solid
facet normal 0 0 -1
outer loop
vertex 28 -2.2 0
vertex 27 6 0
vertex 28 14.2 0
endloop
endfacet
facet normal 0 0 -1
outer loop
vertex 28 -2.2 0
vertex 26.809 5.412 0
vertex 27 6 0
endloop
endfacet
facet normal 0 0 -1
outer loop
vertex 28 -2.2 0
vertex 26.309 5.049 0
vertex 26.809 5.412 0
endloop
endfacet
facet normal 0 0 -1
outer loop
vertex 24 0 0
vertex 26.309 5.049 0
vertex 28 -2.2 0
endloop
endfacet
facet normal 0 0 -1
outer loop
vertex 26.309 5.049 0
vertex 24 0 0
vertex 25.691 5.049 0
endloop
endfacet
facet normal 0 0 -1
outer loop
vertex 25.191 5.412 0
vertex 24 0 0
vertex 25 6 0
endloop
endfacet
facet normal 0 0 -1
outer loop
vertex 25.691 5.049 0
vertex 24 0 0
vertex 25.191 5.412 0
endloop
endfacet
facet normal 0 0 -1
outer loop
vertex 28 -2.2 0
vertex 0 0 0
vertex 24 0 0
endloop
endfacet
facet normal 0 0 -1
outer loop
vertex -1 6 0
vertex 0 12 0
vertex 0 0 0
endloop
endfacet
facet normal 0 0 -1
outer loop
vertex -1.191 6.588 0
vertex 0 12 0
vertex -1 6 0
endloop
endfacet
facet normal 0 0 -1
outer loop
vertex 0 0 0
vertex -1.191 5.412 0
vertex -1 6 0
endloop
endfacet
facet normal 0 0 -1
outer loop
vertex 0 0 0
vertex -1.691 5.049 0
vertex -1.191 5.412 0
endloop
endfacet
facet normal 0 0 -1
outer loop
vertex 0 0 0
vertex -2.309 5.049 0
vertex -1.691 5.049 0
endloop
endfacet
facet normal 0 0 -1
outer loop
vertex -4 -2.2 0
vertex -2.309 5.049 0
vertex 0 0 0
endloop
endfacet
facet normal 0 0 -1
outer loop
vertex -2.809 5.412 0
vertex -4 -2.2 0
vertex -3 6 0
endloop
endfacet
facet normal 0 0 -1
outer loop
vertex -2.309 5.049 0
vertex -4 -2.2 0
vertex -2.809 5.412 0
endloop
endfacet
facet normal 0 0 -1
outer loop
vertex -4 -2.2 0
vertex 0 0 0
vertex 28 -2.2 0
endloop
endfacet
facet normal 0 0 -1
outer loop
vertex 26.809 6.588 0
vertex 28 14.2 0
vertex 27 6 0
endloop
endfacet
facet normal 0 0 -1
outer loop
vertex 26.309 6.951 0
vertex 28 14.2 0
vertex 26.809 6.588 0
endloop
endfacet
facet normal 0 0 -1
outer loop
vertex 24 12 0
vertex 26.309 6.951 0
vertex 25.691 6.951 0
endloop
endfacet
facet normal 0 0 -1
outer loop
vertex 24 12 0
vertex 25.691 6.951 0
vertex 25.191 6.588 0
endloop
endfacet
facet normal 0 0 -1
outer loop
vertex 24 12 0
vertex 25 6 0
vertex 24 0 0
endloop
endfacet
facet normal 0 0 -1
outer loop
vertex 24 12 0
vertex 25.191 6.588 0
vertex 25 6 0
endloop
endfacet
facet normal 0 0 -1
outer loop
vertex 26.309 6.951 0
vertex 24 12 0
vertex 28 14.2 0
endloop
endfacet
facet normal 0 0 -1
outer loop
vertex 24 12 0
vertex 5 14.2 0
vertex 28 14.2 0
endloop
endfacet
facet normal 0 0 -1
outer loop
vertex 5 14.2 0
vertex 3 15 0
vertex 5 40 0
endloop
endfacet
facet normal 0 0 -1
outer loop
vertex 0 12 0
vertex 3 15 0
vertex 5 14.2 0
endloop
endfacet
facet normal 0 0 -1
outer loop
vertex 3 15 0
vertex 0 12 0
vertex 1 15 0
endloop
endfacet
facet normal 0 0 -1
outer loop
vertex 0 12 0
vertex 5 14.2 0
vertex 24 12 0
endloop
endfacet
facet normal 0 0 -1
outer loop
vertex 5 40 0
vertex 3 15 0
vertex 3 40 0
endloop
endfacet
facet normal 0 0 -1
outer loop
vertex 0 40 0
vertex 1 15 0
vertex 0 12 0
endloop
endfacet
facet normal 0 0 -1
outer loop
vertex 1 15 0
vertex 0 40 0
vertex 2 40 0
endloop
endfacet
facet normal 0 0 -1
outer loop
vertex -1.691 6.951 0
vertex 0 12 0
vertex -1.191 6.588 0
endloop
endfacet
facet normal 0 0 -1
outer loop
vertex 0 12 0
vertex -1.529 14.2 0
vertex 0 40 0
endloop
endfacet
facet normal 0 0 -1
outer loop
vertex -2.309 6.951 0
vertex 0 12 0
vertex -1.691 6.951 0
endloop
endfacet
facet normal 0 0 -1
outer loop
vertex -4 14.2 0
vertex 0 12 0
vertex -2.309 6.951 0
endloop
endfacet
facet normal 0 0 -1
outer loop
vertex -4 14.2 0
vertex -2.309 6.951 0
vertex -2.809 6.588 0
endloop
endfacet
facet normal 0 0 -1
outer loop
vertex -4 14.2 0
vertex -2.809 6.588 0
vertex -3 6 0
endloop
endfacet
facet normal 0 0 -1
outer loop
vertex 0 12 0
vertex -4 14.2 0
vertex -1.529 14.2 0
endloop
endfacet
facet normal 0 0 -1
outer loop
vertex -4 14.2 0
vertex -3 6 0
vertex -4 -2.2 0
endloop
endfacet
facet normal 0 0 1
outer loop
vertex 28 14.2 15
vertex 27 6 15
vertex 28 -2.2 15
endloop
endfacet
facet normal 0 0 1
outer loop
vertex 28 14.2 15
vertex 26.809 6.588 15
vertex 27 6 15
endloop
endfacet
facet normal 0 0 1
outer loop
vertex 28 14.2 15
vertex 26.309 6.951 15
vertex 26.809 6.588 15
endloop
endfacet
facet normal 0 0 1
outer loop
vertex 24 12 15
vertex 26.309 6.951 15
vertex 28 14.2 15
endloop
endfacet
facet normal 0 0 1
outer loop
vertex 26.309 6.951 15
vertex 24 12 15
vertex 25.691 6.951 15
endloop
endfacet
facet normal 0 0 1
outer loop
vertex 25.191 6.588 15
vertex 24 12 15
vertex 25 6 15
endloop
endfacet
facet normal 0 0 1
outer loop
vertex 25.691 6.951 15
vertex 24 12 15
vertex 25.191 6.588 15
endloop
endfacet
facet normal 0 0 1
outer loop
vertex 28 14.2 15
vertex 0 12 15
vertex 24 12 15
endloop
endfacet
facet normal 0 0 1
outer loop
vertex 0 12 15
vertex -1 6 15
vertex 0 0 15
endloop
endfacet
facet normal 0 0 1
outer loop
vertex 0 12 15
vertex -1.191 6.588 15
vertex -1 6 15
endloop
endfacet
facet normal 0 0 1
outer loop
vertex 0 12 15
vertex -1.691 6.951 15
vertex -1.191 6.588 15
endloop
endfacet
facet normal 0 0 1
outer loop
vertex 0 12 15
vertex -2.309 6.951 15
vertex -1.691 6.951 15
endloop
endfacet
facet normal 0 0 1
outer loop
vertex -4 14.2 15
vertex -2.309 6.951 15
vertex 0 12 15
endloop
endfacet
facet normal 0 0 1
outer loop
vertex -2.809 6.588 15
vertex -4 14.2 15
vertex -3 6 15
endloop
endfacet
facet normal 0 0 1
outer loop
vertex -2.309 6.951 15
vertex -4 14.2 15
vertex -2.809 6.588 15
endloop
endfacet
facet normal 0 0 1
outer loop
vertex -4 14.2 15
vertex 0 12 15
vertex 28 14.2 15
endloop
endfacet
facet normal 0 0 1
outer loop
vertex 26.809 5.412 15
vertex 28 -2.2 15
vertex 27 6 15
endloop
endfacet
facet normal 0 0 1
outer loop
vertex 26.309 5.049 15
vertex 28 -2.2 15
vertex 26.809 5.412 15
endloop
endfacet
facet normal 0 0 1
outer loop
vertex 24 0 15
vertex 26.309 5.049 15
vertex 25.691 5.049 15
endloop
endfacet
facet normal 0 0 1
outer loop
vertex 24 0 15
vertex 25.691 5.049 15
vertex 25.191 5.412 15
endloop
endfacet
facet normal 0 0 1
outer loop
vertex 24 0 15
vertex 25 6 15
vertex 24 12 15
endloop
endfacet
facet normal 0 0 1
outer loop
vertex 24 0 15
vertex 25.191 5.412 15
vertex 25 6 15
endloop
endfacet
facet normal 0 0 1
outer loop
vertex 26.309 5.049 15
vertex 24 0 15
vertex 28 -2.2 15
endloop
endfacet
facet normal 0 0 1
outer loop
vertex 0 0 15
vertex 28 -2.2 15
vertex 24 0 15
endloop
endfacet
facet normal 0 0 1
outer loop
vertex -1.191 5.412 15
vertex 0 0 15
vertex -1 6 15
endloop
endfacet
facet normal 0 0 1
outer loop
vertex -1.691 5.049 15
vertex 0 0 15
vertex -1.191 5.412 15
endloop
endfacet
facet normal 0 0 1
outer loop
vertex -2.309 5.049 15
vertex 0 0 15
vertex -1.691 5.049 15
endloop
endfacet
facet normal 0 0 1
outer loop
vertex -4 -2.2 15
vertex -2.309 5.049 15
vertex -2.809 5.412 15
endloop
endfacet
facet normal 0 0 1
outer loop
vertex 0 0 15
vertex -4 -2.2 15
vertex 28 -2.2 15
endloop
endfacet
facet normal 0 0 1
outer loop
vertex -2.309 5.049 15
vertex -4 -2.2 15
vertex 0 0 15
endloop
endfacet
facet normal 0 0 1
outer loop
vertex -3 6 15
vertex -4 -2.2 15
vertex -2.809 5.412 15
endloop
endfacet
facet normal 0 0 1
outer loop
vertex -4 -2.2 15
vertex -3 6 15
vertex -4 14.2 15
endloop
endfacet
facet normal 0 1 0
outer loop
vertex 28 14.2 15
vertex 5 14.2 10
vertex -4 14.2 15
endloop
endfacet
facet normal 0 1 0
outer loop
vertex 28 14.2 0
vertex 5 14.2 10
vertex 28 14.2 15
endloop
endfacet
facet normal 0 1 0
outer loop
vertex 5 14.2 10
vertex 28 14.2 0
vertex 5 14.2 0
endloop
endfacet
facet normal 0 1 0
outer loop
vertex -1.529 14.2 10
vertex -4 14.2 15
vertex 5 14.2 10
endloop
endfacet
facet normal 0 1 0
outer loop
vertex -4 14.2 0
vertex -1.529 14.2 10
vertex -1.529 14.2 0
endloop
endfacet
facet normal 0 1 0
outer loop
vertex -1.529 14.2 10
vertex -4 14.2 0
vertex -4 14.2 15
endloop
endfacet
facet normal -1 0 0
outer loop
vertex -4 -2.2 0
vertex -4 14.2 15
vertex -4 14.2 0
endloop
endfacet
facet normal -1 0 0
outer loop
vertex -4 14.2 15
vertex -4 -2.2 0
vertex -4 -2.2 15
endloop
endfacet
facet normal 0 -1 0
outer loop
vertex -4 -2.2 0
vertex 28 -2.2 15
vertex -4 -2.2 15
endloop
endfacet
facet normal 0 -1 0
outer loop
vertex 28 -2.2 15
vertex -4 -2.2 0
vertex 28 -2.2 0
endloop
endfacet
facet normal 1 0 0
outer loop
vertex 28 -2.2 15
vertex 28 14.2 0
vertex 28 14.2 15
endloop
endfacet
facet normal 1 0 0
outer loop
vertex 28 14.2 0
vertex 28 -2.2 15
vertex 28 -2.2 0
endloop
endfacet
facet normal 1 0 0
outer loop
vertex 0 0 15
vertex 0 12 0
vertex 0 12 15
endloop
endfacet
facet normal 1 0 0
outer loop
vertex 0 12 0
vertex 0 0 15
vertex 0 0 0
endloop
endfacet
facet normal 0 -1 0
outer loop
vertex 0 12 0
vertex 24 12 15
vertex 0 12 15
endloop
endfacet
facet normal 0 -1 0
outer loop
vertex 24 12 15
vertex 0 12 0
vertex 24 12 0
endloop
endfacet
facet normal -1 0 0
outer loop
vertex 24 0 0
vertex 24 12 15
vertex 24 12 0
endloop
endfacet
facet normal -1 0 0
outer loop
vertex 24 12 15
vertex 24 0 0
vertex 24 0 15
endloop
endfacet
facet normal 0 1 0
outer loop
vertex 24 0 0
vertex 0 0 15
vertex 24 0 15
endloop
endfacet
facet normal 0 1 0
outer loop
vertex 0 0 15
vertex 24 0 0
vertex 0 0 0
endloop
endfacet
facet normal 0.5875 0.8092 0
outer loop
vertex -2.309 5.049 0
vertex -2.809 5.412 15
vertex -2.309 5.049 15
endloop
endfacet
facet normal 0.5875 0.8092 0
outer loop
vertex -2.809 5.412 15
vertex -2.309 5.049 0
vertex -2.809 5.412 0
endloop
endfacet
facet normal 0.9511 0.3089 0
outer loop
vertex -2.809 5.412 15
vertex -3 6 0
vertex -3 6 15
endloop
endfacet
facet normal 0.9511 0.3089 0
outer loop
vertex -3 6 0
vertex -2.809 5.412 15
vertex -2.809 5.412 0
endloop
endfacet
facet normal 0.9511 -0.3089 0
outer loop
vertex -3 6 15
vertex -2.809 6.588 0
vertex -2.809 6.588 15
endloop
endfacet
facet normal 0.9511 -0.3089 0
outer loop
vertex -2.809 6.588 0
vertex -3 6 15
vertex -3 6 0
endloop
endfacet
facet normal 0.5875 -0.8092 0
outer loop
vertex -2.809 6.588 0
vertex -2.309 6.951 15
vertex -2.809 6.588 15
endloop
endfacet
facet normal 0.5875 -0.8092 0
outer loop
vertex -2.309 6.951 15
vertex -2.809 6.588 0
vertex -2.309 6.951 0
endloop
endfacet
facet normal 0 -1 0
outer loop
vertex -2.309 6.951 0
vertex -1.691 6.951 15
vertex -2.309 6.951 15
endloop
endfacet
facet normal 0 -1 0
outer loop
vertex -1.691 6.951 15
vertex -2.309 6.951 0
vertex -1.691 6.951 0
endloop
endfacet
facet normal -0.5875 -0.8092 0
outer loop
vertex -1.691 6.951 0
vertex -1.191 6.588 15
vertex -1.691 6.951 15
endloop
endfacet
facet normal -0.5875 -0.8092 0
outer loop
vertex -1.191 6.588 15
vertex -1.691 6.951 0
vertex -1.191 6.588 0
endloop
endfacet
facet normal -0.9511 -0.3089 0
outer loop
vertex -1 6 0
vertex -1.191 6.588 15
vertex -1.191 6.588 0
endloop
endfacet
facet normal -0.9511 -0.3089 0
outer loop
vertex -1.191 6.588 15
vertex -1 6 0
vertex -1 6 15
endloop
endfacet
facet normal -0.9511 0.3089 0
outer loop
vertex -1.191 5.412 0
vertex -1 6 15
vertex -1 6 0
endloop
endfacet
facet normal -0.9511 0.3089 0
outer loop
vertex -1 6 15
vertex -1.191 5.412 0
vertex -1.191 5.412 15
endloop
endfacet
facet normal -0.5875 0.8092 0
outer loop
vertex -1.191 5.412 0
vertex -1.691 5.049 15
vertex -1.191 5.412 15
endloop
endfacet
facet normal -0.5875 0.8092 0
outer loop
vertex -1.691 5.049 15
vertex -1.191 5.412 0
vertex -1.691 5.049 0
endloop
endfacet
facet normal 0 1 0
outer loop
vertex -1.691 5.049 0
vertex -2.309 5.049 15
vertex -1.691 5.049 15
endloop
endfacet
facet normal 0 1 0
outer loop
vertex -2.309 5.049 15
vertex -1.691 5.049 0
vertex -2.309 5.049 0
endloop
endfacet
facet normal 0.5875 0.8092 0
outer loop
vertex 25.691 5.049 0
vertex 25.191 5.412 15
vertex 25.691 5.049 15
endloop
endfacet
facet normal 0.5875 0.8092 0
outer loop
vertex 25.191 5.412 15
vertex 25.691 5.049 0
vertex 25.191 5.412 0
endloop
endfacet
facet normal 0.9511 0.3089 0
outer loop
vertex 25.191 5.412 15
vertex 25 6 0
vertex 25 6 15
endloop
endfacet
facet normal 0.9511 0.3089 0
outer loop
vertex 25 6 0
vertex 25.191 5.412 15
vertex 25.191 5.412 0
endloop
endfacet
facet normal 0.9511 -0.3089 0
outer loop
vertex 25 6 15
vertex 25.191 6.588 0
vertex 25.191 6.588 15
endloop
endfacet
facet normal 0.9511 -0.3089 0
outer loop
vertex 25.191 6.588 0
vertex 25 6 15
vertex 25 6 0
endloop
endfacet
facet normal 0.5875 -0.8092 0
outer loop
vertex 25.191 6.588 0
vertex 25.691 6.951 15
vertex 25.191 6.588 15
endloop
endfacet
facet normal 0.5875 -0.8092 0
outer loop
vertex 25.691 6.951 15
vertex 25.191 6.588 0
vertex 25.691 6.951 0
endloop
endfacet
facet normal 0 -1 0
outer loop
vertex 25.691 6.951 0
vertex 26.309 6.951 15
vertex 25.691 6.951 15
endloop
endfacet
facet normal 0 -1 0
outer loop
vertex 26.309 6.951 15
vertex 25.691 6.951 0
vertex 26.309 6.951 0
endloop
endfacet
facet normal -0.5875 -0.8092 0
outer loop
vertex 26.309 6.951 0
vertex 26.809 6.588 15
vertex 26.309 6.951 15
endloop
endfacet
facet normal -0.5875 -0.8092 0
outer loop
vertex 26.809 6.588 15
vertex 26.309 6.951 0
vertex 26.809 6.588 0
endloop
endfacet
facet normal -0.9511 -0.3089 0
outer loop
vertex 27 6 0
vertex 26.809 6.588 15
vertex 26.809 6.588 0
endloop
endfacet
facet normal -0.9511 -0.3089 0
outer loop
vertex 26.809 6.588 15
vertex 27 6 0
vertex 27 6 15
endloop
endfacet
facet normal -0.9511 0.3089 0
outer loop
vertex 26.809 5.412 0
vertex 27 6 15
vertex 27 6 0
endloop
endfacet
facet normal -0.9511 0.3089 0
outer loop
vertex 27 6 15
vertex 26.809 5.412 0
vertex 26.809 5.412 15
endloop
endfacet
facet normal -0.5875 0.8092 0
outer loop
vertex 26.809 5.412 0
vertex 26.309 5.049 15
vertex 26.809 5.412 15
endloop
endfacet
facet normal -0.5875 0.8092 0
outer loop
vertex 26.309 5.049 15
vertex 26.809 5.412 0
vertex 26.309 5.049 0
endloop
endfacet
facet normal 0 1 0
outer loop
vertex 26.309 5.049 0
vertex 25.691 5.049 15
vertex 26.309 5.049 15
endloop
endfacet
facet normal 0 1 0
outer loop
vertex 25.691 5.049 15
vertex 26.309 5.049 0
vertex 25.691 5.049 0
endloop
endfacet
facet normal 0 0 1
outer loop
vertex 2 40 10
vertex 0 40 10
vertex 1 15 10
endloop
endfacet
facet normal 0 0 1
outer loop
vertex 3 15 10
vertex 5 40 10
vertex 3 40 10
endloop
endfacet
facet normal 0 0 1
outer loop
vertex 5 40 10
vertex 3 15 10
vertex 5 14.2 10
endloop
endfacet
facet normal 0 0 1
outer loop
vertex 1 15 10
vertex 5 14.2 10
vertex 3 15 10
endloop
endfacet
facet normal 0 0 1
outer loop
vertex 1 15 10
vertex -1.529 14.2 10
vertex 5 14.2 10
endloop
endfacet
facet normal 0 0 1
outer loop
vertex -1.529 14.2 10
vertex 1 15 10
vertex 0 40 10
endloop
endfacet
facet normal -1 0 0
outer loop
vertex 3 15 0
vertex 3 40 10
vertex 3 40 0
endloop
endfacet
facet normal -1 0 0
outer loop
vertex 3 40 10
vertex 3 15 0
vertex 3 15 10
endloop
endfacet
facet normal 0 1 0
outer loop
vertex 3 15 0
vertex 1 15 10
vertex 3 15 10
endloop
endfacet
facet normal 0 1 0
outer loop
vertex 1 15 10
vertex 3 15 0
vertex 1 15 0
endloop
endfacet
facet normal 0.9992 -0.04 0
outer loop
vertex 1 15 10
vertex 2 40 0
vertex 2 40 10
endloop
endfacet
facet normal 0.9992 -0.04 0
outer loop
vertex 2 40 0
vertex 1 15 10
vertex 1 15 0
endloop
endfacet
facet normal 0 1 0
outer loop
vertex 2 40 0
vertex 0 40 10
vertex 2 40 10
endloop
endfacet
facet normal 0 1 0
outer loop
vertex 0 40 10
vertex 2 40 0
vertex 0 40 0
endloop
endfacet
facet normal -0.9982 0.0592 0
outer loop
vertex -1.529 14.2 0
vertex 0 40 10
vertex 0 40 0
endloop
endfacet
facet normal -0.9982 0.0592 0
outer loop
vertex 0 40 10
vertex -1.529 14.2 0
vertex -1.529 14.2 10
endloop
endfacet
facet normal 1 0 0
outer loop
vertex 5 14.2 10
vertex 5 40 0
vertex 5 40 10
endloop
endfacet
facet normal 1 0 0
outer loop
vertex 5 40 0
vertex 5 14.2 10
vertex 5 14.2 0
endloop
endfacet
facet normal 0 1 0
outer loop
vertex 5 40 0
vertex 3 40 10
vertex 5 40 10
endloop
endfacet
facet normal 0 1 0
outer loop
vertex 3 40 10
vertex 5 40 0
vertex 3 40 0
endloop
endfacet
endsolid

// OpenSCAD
//square([12,24]);



module case(){
    w=24;
    h=12;
    d=15;
    w_thickness=4;
    h_thickness=2.2;
    hole_edge=2;
    linear_extrude(d)
    difference() {
        polygon(points=[
            [0,0],
            [w,0],
            [w,h],
            [0,h],
            [-w_thickness,-h_thickness],
            [w+w_thickness,-h_thickness],
            [w+w_thickness,h+h_thickness],
            [-w_thickness,h+h_thickness],
        ],paths=[[0,1,2,3],[4,5,6,7]]);
        translate([hole_edge-w_thickness,h/2]) circle(1, $fn=10);
        translate([w-hole_edge+w_thickness,h/2]) circle(1, $fn=10);
    }
}

module tooth(length, width, height, head_height) {
    linear_extrude(height = head_height) {
        polygon([[-length / 2, 0], [-width / 2, height], [width / 2, height], [length / 2,0]]);
    }
}

module clip(){
   d=10;   
   l=25;
   gap_top = 3;
   gap_bottom = 4;
   thickness=2;
   direction = [1,0];
   normal = [direction[1],-direction[0]];
   list=[
        [-thickness,gap_bottom+1.3*thickness],

        [l,gap_top+thickness],[l,gap_top],[0,gap_bottom],[0,gap_bottom],

        [0,thickness],[l,thickness],[l,0],[0,0],
        [-thickness,0]
    ];   
   
   linear_extrude(d)
   polygon(points=list);
   
}


case();
translate([5,15,0]) rotate(90,0,0) clip();
